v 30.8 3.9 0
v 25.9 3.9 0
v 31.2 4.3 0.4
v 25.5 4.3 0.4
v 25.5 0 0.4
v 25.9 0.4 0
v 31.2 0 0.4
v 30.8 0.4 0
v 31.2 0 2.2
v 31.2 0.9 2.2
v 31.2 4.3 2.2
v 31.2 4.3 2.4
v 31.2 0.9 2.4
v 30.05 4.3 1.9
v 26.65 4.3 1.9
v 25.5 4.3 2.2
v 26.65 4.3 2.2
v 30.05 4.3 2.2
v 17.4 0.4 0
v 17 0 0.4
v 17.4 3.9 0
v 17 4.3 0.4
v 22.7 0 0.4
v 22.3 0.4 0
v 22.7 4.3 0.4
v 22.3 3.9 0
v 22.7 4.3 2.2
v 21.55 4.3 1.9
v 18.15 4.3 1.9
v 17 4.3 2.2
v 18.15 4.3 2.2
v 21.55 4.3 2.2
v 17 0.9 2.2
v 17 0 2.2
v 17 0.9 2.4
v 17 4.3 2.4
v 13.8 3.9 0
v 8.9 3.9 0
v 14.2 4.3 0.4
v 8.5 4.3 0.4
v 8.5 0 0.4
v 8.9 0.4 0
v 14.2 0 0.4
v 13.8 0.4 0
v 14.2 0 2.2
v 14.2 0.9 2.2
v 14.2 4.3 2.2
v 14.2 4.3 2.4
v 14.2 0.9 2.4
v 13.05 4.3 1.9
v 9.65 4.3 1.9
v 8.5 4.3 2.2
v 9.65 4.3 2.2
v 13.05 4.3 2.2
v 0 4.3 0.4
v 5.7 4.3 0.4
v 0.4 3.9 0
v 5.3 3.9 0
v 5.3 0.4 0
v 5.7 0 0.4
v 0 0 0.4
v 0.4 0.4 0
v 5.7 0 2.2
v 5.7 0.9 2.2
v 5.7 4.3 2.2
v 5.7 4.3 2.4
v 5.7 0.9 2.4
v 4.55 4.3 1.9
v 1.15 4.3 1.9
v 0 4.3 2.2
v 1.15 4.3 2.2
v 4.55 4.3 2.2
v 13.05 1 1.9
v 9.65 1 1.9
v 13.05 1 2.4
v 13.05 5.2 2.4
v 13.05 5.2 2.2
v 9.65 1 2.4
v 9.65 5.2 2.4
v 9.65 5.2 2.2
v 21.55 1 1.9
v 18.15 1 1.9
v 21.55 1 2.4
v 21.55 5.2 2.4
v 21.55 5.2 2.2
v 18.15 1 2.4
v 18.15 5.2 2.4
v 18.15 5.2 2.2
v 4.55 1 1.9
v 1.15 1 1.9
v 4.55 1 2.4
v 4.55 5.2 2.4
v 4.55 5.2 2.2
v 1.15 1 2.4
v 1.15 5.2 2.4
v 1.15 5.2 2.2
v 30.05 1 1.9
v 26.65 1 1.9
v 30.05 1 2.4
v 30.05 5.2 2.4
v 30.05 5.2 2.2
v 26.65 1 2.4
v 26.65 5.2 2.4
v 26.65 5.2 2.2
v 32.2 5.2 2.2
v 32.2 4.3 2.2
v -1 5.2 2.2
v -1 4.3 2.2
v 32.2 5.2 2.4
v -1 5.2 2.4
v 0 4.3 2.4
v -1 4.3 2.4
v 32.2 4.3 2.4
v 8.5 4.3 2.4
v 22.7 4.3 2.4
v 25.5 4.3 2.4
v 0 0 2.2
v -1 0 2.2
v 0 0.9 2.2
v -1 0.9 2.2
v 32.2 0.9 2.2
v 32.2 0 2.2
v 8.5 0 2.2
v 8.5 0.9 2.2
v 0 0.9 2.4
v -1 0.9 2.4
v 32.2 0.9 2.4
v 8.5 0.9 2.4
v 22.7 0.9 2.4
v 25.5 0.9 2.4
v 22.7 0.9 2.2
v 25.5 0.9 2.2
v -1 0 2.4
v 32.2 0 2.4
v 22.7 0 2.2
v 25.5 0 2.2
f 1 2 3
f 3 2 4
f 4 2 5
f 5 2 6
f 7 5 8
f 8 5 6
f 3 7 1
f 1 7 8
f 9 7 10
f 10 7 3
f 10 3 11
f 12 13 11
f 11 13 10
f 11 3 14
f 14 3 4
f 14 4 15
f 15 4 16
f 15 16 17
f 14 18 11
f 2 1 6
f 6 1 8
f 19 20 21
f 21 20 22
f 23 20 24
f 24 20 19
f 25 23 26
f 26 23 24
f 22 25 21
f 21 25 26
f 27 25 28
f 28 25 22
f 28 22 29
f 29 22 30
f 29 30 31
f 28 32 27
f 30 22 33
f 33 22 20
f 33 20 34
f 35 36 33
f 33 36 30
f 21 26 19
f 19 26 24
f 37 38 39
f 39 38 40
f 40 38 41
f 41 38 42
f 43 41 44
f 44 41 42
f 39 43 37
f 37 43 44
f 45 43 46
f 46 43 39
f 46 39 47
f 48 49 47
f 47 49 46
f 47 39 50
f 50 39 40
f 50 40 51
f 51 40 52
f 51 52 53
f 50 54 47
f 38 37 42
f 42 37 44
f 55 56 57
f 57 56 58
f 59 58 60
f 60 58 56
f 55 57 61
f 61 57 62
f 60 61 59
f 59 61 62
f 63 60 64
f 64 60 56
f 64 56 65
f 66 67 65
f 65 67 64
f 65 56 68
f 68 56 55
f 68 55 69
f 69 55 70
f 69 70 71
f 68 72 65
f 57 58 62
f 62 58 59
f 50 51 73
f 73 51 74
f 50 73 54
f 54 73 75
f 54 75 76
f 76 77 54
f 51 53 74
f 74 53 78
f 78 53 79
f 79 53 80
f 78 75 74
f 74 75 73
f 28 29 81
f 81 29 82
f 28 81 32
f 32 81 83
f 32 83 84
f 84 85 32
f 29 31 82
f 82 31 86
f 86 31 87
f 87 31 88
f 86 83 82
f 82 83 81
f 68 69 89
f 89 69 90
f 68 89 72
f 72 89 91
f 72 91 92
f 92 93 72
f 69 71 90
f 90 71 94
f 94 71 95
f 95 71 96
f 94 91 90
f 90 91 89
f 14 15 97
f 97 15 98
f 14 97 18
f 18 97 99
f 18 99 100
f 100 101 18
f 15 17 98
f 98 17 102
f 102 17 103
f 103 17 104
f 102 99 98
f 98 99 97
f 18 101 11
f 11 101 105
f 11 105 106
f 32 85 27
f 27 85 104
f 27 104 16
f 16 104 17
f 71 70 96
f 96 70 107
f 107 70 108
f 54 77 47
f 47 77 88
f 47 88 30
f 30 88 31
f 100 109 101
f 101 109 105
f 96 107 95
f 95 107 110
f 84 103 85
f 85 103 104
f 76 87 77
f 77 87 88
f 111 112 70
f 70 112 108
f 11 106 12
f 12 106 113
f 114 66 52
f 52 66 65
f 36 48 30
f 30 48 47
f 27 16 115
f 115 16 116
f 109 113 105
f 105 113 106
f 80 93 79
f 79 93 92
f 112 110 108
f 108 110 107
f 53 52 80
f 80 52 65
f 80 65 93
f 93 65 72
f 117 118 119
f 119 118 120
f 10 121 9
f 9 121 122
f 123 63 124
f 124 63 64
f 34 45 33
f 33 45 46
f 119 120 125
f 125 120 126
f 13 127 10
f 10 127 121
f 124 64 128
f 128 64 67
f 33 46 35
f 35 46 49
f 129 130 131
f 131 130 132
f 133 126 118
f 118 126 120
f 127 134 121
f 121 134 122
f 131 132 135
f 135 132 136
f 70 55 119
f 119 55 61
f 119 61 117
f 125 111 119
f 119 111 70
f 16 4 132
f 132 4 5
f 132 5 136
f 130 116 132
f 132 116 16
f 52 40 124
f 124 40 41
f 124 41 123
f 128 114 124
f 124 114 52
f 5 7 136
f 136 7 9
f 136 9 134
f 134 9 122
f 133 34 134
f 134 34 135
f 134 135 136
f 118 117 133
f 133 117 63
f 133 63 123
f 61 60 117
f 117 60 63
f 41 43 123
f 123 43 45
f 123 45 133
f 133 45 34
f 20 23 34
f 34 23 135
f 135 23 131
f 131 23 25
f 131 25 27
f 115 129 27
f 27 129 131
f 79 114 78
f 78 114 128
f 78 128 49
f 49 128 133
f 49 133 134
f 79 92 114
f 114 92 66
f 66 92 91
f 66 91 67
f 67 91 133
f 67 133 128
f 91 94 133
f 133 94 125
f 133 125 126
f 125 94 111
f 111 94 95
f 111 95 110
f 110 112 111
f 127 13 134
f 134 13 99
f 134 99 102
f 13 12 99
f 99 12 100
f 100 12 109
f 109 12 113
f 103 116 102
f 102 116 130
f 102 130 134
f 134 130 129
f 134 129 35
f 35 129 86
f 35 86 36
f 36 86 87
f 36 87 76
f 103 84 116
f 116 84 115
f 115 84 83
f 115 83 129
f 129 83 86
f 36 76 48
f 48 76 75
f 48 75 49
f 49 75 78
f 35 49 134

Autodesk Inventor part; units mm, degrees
ref_plane "YZ Plane" through (0, 0, 0) normal (1, 0, 0) x (0, 1, 0)
ref_plane "XZ Plane" through (0, 0, 0) normal (0, 1, 0) x (-1, 0, 0)
ref_plane "XY Plane" through (0, 0, 0) normal (0, 0, 1) x (1, 0, 0)
sketch "Эскиз1" plane through (0, 0, 0) normal (0, 0, 1) x (1, 0, 0)
  line L0 (0, 0) -> (5.7, 0)
  line L1 (5.7, 0) -> (5.7, 4.3)
  line L2 (5.7, 4.3) -> (0, 4.3)
  line L3 (0, 4.3) -> (0, 0)
  line L4 (8.5, 0) -> (14.2, 0)
  line L5 (14.2, 0) -> (14.2, 4.3)
  line L6 (14.2, 4.3) -> (8.5, 4.3)
  line L7 (8.5, 4.3) -> (8.5, 0)
  line L8 (17, 0) -> (22.7, 0)
  line L9 (22.7, 0) -> (22.7, 4.3)
  line L10 (22.7, 4.3) -> (17, 4.3)
  line L11 (17, 4.3) -> (17, 0)
  line L12 (25.5, 0) -> (31.2, 0)
  line L13 (31.2, 0) -> (31.2, 4.3)
  line L14 (31.2, 4.3) -> (25.5, 4.3)
  line L15 (25.5, 4.3) -> (25.5, 0)
  dimension "d0" = 4.3
  dimension "d1" = 5.7
  dimension "d4" = 8.5
extrude "Выдавливание1" add sketch "Эскиз1" along normal blind 2.4
sketch "Эскиз2" plane through (0, 0, 2.4) normal (0, 0, 1) x (1, 0, 0)
  line L0 (-1, 4.3) -> (32.2, 4.3)
  line L1 (32.2, 4.3) -> (32.2, 5.2)
  line L2 (32.2, 5.2) -> (-1, 5.2)
  line L3 (-1, 5.2) -> (-1, 4.3)
  line L4 (-1, 0) -> (32.2, 0)
  line L5 (32.2, 0) -> (32.2, 0.9)
  line L6 (32.2, 0.9) -> (-1, 0.9)
  line L7 (-1, 0.9) -> (-1, 0)
  line L8 (5.7, 4.3) -> (0, 4.3) projected
  line L9 (0, 4.3) -> (5.7, 4.3)
  line L10 (5.7, 4.3) -> (5.7, 4.3)
  line L11 (5.7, 4.3) -> (0, 4.3)
  line L12 (0, 4.3) -> (0, 4.3)
  line L13 (14.2, 4.3) -> (8.5, 4.3) projected
  line L14 (8.5, 4.3) -> (14.2, 4.3)
  line L15 (14.2, 4.3) -> (14.2, 4.3)
  line L16 (14.2, 4.3) -> (8.5, 4.3)
  line L17 (8.5, 4.3) -> (8.5, 4.3)
  line L18 (17, 4.3) -> (22.7, 4.3)
  line L19 (22.7, 4.3) -> (22.7, 4.3)
  line L20 (22.7, 4.3) -> (17, 4.3)
  line L21 (17, 4.3) -> (17, 4.3)
  line L22 (31.2, 4.3) -> (25.5, 4.3) projected
  line L23 (25.5, 4.3) -> (31.2, 4.3)
  line L24 (31.2, 4.3) -> (31.2, 4.3)
  line L25 (31.2, 4.3) -> (25.5, 4.3)
  line L26 (25.5, 4.3) -> (25.5, 4.3)
  line L27 (0, 4.3) -> (0, 0) projected
  line L28 (31.2, 0) -> (31.2, 4.3) projected
  point P0 (31.2, 0.9)
  point P1 (0, 0.9)
  point P2 (25.5, 4.8)
  point P3 (17, 4.8)
  point P4 (0, 4.8)
  point P5 (8.5, 4.8)
  dimension "d11" = 0.9
  dimension "d12" = 0
  dimension "d13" = 0.9
  dimension "d14" = 1
  dimension "d15" = 1
extrude "Выдавливание2" add sketch "Эскиз2" against normal blind 0.2 contours L3 L2 L1 L0 | L27 L4 L7 L6 | L6 L28 L4 L27 | L6 L5 L4 L28
sketch "Эскиз3" plane through (0, 0, 2.4) normal (0, 0, 1) x (1, 0, 0)
  line L0 (32.2, 5.2) -> (-1, 5.2) projected
  line L1 (1.15, 1) -> (4.55, 1)
  line L2 (4.55, 1) -> (4.55, 5.2)
  line L3 (4.55, 5.2) -> (1.15, 5.2)
  line L4 (1.15, 5.2) -> (1.15, 1)
  line L5 (0, 4.3) -> (5.7, 4.3) projected
  line L6 (9.65, 1) -> (13.05, 1)
  line L7 (13.05, 1) -> (13.05, 5.2)
  line L8 (13.05, 5.2) -> (9.65, 5.2)
  line L9 (9.65, 5.2) -> (9.65, 1)
  line L10 (18.15, 1) -> (21.55, 1)
  line L11 (21.55, 1) -> (21.55, 5.2)
  line L12 (21.55, 5.2) -> (18.15, 5.2)
  line L13 (18.15, 5.2) -> (18.15, 1)
  line L14 (26.65, 1) -> (30.05, 1)
  line L15 (30.05, 1) -> (30.05, 5.2)
  line L16 (30.05, 5.2) -> (26.65, 5.2)
  line L17 (26.65, 5.2) -> (26.65, 1)
  point P0 (0, 0)
  point P1 (2.85, 4.3)
  point P2 (2.85, 1)
  point P3 (11.35, 1)
  point P4 (11.35, 4.3)
  point P5 (19.85, 1)
  point P6 (19.85, 4.3)
  point P7 (28.35, 1)
  point P8 (28.35, 4.3)
  point P9 (13.05, 5.2)
  point P10 (21.55, 5.2)
  point P11 (30.05, 5.2)
  dimension "d18" = 3.4
  dimension "d19" = 4.2
  dimension "d22" = 8.5
extrude "Выдавливание3" cut sketch "Эскиз3" against normal blind 0.5
chamfer "Фаска1" distance 0.4 angle 45 16 edges at (2.85, 4.3, 0) (0, 2.15, 0) (2.85, 0, 0) (5.7, 2.15, 0) (8.5, 2.15, 0) (11.35, 4.3, 0) (14.2, 2.15, 0) (11.35, 0, 0) (19.85, 0, 0) (17, 2.15, 0) (19.85, 4.3, 0) (22.7, 2.15, 0) (25.5, 2.15, 0) (28.35, 4.3, 0) (31.2, 2.15, 0) (28.35, 0, 0)
properties part number "buttons"
